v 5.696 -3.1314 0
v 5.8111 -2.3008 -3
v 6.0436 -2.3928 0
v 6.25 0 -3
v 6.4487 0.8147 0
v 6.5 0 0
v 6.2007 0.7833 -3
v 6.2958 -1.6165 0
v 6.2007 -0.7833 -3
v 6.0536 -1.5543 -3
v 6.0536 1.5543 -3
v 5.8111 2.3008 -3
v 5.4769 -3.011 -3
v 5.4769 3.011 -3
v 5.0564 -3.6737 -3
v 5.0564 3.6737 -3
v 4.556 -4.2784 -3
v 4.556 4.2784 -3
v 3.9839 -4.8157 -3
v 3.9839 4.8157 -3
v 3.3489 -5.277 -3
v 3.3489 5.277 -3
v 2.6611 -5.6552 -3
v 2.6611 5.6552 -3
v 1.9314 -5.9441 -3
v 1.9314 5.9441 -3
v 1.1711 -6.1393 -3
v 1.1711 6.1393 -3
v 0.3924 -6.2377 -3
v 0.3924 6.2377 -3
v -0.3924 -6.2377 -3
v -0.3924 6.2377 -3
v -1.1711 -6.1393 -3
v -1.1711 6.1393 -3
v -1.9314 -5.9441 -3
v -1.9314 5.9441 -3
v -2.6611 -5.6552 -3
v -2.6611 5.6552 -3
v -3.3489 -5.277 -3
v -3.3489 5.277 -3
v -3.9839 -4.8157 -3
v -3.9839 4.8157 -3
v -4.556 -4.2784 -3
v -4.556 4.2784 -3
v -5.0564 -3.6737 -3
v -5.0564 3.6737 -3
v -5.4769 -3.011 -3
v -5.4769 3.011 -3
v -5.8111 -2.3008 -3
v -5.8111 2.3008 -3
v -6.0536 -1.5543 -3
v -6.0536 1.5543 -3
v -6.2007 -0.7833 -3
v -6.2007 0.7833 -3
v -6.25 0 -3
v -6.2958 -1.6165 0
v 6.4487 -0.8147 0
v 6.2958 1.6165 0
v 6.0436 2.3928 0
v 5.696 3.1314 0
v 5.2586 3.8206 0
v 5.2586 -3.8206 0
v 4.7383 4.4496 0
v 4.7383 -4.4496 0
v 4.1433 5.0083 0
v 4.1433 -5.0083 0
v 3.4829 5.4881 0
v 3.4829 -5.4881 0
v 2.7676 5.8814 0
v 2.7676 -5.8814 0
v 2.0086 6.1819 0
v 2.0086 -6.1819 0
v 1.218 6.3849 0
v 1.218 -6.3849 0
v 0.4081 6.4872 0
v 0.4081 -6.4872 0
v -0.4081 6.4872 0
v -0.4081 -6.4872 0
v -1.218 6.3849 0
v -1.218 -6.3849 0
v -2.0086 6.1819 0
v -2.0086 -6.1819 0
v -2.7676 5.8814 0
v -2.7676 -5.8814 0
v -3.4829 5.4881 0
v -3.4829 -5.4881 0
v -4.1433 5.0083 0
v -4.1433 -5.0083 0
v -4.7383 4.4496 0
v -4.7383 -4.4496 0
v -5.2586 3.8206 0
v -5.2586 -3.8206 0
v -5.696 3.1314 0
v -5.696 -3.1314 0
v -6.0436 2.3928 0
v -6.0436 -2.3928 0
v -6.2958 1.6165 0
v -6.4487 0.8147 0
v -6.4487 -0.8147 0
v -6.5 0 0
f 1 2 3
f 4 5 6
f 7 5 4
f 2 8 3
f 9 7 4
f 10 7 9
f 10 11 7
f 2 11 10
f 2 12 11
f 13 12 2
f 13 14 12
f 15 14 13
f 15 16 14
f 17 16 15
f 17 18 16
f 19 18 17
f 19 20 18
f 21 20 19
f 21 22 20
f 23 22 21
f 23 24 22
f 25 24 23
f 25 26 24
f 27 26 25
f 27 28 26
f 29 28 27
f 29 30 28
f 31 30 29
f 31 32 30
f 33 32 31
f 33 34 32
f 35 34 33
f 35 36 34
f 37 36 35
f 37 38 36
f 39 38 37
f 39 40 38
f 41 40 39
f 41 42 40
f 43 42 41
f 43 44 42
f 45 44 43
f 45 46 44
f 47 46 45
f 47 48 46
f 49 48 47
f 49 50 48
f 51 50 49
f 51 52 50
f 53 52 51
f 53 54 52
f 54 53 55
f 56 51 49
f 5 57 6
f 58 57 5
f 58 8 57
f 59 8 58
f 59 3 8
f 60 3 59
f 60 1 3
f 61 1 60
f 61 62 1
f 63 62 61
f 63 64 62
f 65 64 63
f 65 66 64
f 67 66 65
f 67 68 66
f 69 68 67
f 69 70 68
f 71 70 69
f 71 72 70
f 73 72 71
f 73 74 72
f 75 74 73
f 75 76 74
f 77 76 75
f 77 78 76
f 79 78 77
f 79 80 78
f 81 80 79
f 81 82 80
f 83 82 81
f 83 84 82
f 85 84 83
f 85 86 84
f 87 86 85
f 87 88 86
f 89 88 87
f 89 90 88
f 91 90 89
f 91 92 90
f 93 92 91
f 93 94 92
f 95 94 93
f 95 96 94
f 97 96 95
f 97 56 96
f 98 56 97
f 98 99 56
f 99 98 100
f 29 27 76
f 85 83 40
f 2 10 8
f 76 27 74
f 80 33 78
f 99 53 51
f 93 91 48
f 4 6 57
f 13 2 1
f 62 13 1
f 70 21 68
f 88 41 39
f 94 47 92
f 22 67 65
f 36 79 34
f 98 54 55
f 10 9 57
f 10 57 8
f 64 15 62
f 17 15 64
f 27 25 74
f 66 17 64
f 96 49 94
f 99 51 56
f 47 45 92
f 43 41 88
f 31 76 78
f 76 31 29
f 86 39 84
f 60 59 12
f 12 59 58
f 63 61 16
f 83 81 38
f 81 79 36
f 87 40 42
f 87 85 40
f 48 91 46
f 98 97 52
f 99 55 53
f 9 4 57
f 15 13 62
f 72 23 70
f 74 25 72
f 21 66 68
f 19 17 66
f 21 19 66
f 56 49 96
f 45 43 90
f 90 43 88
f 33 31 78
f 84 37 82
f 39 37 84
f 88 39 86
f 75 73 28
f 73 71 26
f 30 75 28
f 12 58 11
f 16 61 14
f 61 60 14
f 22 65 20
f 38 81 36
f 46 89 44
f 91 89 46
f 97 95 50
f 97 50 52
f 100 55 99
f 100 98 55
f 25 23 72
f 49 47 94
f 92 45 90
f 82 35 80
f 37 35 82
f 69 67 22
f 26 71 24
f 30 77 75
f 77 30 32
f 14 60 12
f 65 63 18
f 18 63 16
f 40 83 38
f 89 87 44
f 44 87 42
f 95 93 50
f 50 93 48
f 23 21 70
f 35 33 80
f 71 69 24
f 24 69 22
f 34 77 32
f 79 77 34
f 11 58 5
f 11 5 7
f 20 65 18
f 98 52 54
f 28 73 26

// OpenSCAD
$fn = 50;


difference() {
	union() {
		translate(v = [0, 0, -3.0000000000]) {
			cylinder(h = 3, r1 = 6.2500000000, r2 = 6.5000000000);
		}
	}
	union();
}
